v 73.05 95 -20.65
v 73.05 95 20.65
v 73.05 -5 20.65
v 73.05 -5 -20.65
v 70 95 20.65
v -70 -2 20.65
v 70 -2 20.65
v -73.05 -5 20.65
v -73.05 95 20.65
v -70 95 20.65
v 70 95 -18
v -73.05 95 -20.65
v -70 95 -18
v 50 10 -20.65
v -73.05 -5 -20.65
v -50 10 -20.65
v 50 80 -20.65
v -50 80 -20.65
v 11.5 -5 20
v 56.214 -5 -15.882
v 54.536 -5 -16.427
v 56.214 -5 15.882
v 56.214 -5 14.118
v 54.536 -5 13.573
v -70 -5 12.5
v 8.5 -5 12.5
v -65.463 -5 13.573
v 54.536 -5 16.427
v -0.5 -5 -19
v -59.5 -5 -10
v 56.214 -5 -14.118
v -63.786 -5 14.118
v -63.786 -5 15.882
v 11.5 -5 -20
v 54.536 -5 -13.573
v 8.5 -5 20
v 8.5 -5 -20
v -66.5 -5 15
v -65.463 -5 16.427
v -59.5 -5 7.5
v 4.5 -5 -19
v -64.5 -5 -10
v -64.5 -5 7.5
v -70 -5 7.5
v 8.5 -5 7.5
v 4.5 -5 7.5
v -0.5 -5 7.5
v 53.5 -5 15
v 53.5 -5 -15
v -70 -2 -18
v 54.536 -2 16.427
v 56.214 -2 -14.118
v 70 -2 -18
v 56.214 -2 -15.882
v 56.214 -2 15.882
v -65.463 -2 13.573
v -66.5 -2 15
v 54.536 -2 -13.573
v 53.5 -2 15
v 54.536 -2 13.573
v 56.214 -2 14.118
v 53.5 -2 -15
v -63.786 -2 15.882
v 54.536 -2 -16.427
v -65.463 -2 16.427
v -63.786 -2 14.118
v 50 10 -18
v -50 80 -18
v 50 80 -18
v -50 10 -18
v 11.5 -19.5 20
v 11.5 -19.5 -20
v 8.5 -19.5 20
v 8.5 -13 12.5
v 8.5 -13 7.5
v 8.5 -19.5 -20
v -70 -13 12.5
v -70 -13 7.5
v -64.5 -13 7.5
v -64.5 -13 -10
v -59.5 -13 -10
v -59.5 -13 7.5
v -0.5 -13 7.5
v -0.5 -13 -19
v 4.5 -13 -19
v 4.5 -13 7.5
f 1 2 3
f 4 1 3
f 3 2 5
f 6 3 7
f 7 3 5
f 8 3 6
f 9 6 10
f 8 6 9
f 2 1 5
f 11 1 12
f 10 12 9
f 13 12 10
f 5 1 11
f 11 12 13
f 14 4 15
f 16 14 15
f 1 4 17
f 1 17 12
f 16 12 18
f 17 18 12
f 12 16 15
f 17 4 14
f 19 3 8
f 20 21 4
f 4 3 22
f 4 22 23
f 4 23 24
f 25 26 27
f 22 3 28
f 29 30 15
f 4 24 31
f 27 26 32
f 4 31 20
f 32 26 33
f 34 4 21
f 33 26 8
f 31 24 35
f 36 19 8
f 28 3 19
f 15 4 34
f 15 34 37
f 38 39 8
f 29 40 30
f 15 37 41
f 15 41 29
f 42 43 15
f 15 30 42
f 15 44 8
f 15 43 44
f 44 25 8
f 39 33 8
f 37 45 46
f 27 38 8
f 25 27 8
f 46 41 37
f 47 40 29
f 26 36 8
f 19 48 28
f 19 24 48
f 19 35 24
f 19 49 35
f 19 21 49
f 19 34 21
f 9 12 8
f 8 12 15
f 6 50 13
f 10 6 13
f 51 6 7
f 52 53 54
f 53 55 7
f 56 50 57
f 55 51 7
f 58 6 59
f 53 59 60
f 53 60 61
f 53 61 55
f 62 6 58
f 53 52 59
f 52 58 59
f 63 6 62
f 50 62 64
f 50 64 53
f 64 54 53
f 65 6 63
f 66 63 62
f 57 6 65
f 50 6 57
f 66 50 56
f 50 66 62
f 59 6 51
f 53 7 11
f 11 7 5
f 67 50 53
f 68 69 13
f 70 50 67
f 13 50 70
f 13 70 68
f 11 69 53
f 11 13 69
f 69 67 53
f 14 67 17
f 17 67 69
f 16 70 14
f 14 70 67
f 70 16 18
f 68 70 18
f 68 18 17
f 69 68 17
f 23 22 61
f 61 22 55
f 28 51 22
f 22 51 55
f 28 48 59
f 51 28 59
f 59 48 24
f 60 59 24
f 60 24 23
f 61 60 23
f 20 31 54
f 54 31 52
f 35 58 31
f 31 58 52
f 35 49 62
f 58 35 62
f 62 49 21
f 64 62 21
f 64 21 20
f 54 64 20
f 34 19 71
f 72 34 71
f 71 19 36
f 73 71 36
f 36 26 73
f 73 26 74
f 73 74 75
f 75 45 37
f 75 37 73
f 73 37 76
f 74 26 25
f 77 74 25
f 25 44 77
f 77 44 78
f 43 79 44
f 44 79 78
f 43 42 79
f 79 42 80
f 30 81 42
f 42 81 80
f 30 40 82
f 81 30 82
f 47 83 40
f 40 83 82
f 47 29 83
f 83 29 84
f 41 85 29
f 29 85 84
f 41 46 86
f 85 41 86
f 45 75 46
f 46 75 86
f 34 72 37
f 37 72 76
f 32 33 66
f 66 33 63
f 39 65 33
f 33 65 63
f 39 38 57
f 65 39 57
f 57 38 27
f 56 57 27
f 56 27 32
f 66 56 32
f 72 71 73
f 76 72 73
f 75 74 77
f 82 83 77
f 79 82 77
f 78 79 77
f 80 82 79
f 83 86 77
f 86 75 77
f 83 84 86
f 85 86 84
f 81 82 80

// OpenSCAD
// file: electronic_lcdDisplay.scad
use <write.scad>

module lcdDisplay(){
	//screenFace
	color([0,.5,.2]) cube(size=[62,33,1],center=true);
	//frame
	difference(){
		translate([0,0,-2]){
			color([.2,.2,.2]) cube(size=[74.5,45,7],center=true);
		}
		color([0,.5,.2]) cube(size=[62,33,5],center=true);
	}
	//pcb1
	difference(){
		translate([0,0,-6]){
			color([0,.3,.2]) cube(size=[75,52.5,1],center=true);
		}
		//screwHoles
		translate([36,25,-6]){
			cylinder(r=1,h=10,$fn=25,center=true);
		}
		translate([-36,25,-6]){
			cylinder(r=1,h=10,$fn=25,center=true);
		}
	}
	//pcb2
	translate([0,12,-10]){
		color([1,0,0]) cube(size=[51,28,1],center=true);
	}
	//connector
	translate([27,12,-12]){
		color([.2,.2,.2]) cube(size=[20,10,2],center=true);
	}
	rotate([180,180,0]){
		translate([-16.5,13,0]){
			write("Meridian",h=4,t=3,center=true);
		}
		translate([-14,7,0]){
			write("Scientific",h=4,t=3,center=true);
		}
	}
}

lcdDisplay();
// main file
use <electronic_lcdDisplay.scad>

module trim_lcdFacePlate_driveTray(){
	difference(){
		translate([0,0,-45]){
			color([0.2,0.8,0.2]) cube(size=[146.1,41.3,100],center=true);
		}
		translate([0,-6,-53]){
			color([0.2,0.2,0.2])cube(size=[140,48,110],center=true);
		}
		translate([0,20,-45]){
			color([0.2,0.2,0.2])cube(size=[100,28,70],center=true);
		}
		translate([-55,15,0]){
			cylinder(r=1.5,h=15,center=true);
		}
		translate([-55,-15,0]){
			cylinder(r=1.5,h=15,center=true);
		}
		translate([65,-15,1]){
			cylinder(r=1.5,h=25,center=true);
		}
	}
	translate([30,-10,9]){
		cube(size=[80,5,8],center=true);
	}
	translate([62,0,9]){
		cube(size=[5,20,8],center=true);
	}
	translate([-2,4,9]){
		cube(size=[5,30,8],center=true);
	}
	translate([-10,0,12]){
		cube(size=[3,40,15],center=true);
	}
}

rotate([90,180,0]){
//	trim_lcdFacePlate_facia();
	trim_lcdFacePlate_driveTray();
//	translate([30,6,20]){
//		lcdDisplay();
//	}
}
